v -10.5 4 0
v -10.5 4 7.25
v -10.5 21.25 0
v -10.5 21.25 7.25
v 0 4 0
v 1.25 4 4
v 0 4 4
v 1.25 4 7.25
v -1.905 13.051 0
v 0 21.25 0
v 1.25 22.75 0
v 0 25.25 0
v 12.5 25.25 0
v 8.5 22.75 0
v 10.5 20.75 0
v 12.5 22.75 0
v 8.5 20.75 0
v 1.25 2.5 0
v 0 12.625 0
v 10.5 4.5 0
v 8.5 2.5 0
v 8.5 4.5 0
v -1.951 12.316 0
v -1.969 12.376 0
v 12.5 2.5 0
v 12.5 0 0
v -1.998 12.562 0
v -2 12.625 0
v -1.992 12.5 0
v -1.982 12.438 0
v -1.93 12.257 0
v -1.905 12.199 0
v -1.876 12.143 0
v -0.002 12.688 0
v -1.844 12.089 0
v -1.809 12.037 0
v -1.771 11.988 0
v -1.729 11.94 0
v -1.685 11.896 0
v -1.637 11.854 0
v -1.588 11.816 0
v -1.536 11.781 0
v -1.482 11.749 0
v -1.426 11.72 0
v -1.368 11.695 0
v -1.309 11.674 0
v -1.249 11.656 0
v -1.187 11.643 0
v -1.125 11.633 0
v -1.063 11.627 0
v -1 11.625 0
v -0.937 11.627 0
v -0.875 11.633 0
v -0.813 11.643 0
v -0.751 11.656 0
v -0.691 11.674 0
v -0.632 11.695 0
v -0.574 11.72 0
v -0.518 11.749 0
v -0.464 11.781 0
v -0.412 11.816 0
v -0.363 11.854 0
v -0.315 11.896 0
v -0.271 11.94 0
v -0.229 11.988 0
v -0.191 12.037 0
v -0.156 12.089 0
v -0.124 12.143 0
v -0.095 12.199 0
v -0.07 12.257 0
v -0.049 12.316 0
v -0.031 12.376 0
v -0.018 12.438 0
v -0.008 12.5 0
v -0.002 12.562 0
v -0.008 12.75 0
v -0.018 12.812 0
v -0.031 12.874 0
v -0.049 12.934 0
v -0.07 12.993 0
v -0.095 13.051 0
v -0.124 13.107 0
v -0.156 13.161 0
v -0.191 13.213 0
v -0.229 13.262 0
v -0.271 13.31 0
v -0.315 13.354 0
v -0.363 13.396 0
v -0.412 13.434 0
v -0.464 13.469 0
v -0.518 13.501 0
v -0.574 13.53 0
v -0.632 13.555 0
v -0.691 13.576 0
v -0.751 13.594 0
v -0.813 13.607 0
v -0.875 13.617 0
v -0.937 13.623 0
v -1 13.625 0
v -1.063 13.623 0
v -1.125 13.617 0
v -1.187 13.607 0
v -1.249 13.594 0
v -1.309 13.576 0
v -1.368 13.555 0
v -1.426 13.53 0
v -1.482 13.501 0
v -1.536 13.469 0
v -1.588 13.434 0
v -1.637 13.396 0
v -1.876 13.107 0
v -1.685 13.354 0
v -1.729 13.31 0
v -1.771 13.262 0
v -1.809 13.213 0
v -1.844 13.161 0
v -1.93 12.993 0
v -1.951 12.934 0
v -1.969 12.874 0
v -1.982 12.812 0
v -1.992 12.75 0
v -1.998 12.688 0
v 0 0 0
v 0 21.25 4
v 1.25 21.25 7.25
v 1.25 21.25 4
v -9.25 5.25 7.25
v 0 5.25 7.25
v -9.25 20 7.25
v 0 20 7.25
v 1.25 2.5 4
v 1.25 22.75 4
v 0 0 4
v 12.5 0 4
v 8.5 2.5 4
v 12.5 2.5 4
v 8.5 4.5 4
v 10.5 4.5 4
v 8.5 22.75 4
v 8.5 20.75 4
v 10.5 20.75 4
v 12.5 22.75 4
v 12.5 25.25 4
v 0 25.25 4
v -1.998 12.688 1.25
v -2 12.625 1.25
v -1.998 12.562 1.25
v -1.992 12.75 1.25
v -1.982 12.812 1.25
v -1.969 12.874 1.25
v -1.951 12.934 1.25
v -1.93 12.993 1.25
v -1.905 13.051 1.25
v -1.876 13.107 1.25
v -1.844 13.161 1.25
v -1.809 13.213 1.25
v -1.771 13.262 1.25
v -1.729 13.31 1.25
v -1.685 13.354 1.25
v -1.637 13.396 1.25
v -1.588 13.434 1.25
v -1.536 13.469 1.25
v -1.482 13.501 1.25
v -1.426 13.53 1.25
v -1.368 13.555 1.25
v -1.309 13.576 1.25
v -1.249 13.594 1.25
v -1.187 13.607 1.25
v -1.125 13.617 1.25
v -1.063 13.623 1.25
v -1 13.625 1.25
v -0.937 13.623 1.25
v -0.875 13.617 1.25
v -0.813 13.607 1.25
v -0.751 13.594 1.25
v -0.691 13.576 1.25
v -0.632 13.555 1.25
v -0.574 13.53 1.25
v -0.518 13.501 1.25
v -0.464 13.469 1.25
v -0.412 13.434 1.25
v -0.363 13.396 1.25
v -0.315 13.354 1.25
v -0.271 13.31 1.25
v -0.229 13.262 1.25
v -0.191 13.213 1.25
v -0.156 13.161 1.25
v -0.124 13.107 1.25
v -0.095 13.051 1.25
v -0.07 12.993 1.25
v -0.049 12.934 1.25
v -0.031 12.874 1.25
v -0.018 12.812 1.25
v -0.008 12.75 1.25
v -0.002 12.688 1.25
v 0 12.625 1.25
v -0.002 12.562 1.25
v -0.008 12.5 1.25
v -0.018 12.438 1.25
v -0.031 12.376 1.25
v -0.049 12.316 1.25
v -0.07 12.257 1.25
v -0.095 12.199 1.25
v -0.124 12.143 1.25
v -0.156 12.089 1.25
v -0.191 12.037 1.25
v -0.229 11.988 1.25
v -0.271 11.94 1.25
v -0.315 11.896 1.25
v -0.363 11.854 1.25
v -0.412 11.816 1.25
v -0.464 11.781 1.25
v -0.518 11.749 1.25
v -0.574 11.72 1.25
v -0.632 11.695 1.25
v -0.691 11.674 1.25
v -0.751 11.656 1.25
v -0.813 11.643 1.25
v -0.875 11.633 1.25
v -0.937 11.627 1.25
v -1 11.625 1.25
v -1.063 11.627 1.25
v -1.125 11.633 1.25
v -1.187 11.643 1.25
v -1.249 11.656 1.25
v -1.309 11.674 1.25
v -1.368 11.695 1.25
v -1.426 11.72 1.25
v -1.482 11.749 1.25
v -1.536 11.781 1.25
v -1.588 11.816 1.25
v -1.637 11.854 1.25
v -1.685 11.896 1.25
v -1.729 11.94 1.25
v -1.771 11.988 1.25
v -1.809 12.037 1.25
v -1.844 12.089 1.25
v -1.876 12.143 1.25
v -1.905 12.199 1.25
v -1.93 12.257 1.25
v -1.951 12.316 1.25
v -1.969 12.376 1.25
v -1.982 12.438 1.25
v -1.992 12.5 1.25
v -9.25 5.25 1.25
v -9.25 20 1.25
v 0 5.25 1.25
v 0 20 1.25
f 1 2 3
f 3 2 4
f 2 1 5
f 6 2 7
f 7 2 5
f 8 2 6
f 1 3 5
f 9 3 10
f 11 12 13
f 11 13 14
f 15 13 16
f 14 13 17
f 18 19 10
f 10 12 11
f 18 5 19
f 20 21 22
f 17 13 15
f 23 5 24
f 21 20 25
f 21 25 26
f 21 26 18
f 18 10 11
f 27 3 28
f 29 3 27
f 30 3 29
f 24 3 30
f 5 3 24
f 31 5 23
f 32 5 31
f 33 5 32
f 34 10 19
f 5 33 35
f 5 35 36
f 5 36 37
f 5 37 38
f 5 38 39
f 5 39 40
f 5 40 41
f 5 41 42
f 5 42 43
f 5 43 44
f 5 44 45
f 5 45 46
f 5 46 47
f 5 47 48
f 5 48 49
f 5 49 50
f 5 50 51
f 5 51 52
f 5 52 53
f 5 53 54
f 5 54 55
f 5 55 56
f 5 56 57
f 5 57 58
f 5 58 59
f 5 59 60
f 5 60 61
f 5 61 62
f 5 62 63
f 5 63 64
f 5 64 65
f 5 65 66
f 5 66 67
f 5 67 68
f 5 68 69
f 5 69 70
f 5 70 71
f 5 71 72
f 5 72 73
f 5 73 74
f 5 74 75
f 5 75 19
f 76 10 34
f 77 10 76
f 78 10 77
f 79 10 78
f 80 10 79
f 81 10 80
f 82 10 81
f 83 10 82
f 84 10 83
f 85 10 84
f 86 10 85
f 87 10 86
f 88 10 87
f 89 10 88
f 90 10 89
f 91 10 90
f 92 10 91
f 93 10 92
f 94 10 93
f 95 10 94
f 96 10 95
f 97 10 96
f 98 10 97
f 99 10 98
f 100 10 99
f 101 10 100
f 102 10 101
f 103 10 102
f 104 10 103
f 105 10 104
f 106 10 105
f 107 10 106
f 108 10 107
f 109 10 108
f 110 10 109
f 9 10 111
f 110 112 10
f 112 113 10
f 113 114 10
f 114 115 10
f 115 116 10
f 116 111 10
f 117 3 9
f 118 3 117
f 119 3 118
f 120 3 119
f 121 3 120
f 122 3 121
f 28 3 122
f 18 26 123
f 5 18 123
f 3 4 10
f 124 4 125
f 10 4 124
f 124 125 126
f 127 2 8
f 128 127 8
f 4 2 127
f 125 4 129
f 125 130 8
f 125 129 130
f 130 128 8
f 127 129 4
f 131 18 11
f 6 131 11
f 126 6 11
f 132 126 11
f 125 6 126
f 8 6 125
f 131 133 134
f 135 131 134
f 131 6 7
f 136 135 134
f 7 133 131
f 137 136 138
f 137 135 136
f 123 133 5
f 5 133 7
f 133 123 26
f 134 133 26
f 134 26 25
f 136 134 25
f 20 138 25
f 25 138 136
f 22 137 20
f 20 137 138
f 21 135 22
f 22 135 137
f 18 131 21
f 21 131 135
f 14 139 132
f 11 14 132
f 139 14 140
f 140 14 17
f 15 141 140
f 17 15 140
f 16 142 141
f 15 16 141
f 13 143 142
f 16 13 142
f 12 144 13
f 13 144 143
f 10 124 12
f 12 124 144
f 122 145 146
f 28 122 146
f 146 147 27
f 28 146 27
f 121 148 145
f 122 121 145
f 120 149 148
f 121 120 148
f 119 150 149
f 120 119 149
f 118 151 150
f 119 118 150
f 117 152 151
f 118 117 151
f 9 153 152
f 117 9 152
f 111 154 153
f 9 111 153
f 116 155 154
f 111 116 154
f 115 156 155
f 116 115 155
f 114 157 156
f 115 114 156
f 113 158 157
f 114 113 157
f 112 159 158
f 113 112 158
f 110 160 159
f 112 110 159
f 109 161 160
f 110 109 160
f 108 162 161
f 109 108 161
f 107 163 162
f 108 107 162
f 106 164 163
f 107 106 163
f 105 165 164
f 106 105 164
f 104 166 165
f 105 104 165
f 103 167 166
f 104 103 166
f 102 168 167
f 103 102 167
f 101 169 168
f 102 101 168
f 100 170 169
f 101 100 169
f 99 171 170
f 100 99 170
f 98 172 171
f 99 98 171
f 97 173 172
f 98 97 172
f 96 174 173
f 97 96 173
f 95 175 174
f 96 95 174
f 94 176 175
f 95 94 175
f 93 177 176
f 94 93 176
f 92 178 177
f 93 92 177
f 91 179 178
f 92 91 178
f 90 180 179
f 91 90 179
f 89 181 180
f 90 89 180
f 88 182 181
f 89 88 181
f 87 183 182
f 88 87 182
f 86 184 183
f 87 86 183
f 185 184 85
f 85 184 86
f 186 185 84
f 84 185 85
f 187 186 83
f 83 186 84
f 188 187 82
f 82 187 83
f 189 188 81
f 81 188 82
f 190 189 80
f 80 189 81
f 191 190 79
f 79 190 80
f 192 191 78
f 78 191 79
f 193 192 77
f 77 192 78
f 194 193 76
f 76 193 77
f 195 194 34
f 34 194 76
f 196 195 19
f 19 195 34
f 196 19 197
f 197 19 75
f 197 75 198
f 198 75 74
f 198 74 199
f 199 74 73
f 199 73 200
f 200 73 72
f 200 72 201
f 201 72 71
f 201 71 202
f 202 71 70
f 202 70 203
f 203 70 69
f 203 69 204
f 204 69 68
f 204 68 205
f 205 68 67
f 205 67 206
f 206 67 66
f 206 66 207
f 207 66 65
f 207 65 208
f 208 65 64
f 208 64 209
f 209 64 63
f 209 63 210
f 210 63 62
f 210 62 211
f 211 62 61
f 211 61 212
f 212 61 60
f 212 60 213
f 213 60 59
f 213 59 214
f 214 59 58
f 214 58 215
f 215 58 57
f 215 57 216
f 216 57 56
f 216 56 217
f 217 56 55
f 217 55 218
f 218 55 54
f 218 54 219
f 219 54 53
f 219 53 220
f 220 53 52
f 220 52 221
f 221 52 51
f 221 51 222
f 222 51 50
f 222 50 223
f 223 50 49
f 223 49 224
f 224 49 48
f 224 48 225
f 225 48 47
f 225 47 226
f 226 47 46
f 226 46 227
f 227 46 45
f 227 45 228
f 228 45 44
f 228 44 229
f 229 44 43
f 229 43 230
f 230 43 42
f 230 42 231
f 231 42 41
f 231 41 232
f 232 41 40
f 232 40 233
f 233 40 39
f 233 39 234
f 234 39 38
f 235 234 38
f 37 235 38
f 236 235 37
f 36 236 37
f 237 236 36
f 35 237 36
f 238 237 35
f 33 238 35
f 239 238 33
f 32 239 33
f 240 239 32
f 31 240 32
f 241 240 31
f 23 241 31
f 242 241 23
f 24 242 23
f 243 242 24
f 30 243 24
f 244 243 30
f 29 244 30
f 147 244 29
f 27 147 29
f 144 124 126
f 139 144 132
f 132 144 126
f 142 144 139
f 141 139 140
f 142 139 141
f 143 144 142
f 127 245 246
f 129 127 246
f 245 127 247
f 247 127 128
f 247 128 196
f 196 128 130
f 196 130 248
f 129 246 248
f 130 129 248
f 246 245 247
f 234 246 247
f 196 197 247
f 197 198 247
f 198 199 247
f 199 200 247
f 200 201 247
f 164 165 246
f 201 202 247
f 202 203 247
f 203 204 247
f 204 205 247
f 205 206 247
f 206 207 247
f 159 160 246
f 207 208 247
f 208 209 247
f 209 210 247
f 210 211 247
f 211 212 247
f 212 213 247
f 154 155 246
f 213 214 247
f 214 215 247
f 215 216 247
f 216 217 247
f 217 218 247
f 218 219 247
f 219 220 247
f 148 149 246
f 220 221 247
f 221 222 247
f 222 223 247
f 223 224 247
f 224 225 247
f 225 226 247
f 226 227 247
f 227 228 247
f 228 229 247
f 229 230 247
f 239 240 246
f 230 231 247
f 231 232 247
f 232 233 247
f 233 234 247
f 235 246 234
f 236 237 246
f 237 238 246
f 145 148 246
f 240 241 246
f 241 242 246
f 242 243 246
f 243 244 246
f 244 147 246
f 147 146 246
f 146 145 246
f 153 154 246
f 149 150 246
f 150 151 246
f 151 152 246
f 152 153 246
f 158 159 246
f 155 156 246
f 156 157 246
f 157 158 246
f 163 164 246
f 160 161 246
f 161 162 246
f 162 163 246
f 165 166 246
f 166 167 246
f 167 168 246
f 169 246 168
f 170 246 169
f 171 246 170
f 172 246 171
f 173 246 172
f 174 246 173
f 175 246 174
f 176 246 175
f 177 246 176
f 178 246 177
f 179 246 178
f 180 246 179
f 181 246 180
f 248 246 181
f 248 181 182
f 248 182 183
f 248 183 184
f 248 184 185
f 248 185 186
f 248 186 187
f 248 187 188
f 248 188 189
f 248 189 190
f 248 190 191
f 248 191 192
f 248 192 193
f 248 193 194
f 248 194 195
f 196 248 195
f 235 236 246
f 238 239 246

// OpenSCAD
//LED CLAMP
//(c) Kai Dupke
//License: GPL

//high of the LED profile
h=9;

//width of the LED profile
w=14.5;

//how much of the LED profile to be mounted?
d=6;

//which size for the hole for wires?
d1=2;

//How thick shall the hooks be?
t1=2.5;

//How thick shall the clamp bridge be?
t2=1.25;

//high of the clamp
w1=4;

//depth of the hook
t3=2;

//profile width
l1=20;

//distance from edge to slot
l2=7;

//How much extra space needed to make print fit?
x=0.25;

union() {
	//let us do the level on top of the profile first
	cube([t2,l1+2*t1+x,w1]);

	//now the first hook
	hook();

	//second hook
	//hook mirrored and moved to the other side
	translate([0,l1+t1+t1+x,0]){
		mirror([0,1,0]){
			hook();}
	}

	//add the LED mount itself
	
	//all together centered
	translate([0,(l1+2*t1-(w+2*t2))/2,0]){
		difference(){
			union(){
				//bottom plate
				cube([t2,w+2*t2+x,d+t2]);
		
				//top plate
				translate([-(t2+h+x),0,0]){
					cube([t2,w+2*t2+x,d+t2]);
				}

				//rear plate
				translate([-(h+x),0,0]){
					cube([h+x,w+2*t2+x,t2]);
				}

				//left plate
				translate([-(h+x),0,0]){
					cube([h+x,t2,d+t2]);
				}
	
				//right plate
				translate([-(h+x),w+x+t2,0]){
					cube([h+x,t2,d+t2]);
				}
			}

			//hole for wires
			translate([-(d1/2),(w+2*t2+x)/2,0]){
				cylinder(h= t2,r = d1/2,$fn=100);
			}
		}

	}

}

module hook()
{
	//one leg
	cube([l2+t2+2*t3+x,t1,w1]);

	//the hook
	translate ([l2+t2+x,t1,0]){
		polyhedron ( points = [[0,0,0],[2*t3,0,0],[t3,t3,0],[0,t3,0],[0,0,w1],[2*t3,0,w1],[t3,t3,w1],[0,t3,w1],[0,t3,w1]],
		triangles = [[0,5,1],[5,0,4],[1,6,2],[6,1,5],[2,6,3],[6,7,3],[7,4,0],[0,3,7],[5,4,6],[4,7,6],[0,1,2],[2,3,0]]);
	}
}
